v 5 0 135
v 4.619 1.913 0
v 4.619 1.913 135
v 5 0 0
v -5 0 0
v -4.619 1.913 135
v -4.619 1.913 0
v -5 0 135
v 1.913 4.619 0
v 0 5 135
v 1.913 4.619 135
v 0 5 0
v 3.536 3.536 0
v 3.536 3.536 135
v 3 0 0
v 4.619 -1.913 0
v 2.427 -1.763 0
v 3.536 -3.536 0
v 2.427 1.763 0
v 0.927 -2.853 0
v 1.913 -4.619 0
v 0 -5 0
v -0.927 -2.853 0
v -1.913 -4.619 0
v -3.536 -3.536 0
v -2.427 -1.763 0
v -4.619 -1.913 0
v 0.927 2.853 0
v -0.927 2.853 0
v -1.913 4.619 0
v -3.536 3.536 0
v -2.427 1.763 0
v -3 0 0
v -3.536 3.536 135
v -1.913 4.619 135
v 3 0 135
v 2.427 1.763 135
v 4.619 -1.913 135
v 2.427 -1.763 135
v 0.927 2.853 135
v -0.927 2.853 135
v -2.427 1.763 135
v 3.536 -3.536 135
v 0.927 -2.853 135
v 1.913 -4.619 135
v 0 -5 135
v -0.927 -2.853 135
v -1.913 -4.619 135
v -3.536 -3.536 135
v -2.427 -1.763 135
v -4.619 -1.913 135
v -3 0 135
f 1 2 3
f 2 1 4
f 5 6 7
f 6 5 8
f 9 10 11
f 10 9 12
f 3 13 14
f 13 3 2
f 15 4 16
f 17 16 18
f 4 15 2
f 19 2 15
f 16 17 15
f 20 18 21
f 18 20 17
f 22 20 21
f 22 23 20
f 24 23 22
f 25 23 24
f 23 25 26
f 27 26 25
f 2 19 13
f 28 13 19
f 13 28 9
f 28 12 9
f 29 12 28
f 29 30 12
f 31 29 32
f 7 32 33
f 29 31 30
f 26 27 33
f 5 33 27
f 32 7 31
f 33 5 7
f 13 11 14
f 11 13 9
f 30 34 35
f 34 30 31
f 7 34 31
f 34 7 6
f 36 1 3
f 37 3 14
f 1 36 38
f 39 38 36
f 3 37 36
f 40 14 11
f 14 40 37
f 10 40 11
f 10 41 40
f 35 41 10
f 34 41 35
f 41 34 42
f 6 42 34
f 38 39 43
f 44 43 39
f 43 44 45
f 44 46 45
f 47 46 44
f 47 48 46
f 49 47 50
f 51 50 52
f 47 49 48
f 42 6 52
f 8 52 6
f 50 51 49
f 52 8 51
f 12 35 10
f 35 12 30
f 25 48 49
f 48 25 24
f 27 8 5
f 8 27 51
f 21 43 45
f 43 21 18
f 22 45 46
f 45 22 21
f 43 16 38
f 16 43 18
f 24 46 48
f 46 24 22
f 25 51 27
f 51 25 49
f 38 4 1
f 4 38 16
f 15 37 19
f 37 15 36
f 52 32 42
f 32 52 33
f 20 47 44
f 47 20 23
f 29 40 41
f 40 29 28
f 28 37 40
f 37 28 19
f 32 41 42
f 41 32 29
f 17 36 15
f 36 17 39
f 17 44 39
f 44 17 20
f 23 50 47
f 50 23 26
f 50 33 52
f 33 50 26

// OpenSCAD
 
difference(){
    cylinder(135,5, 5);
    cylinder(135,3, 3);
} 
